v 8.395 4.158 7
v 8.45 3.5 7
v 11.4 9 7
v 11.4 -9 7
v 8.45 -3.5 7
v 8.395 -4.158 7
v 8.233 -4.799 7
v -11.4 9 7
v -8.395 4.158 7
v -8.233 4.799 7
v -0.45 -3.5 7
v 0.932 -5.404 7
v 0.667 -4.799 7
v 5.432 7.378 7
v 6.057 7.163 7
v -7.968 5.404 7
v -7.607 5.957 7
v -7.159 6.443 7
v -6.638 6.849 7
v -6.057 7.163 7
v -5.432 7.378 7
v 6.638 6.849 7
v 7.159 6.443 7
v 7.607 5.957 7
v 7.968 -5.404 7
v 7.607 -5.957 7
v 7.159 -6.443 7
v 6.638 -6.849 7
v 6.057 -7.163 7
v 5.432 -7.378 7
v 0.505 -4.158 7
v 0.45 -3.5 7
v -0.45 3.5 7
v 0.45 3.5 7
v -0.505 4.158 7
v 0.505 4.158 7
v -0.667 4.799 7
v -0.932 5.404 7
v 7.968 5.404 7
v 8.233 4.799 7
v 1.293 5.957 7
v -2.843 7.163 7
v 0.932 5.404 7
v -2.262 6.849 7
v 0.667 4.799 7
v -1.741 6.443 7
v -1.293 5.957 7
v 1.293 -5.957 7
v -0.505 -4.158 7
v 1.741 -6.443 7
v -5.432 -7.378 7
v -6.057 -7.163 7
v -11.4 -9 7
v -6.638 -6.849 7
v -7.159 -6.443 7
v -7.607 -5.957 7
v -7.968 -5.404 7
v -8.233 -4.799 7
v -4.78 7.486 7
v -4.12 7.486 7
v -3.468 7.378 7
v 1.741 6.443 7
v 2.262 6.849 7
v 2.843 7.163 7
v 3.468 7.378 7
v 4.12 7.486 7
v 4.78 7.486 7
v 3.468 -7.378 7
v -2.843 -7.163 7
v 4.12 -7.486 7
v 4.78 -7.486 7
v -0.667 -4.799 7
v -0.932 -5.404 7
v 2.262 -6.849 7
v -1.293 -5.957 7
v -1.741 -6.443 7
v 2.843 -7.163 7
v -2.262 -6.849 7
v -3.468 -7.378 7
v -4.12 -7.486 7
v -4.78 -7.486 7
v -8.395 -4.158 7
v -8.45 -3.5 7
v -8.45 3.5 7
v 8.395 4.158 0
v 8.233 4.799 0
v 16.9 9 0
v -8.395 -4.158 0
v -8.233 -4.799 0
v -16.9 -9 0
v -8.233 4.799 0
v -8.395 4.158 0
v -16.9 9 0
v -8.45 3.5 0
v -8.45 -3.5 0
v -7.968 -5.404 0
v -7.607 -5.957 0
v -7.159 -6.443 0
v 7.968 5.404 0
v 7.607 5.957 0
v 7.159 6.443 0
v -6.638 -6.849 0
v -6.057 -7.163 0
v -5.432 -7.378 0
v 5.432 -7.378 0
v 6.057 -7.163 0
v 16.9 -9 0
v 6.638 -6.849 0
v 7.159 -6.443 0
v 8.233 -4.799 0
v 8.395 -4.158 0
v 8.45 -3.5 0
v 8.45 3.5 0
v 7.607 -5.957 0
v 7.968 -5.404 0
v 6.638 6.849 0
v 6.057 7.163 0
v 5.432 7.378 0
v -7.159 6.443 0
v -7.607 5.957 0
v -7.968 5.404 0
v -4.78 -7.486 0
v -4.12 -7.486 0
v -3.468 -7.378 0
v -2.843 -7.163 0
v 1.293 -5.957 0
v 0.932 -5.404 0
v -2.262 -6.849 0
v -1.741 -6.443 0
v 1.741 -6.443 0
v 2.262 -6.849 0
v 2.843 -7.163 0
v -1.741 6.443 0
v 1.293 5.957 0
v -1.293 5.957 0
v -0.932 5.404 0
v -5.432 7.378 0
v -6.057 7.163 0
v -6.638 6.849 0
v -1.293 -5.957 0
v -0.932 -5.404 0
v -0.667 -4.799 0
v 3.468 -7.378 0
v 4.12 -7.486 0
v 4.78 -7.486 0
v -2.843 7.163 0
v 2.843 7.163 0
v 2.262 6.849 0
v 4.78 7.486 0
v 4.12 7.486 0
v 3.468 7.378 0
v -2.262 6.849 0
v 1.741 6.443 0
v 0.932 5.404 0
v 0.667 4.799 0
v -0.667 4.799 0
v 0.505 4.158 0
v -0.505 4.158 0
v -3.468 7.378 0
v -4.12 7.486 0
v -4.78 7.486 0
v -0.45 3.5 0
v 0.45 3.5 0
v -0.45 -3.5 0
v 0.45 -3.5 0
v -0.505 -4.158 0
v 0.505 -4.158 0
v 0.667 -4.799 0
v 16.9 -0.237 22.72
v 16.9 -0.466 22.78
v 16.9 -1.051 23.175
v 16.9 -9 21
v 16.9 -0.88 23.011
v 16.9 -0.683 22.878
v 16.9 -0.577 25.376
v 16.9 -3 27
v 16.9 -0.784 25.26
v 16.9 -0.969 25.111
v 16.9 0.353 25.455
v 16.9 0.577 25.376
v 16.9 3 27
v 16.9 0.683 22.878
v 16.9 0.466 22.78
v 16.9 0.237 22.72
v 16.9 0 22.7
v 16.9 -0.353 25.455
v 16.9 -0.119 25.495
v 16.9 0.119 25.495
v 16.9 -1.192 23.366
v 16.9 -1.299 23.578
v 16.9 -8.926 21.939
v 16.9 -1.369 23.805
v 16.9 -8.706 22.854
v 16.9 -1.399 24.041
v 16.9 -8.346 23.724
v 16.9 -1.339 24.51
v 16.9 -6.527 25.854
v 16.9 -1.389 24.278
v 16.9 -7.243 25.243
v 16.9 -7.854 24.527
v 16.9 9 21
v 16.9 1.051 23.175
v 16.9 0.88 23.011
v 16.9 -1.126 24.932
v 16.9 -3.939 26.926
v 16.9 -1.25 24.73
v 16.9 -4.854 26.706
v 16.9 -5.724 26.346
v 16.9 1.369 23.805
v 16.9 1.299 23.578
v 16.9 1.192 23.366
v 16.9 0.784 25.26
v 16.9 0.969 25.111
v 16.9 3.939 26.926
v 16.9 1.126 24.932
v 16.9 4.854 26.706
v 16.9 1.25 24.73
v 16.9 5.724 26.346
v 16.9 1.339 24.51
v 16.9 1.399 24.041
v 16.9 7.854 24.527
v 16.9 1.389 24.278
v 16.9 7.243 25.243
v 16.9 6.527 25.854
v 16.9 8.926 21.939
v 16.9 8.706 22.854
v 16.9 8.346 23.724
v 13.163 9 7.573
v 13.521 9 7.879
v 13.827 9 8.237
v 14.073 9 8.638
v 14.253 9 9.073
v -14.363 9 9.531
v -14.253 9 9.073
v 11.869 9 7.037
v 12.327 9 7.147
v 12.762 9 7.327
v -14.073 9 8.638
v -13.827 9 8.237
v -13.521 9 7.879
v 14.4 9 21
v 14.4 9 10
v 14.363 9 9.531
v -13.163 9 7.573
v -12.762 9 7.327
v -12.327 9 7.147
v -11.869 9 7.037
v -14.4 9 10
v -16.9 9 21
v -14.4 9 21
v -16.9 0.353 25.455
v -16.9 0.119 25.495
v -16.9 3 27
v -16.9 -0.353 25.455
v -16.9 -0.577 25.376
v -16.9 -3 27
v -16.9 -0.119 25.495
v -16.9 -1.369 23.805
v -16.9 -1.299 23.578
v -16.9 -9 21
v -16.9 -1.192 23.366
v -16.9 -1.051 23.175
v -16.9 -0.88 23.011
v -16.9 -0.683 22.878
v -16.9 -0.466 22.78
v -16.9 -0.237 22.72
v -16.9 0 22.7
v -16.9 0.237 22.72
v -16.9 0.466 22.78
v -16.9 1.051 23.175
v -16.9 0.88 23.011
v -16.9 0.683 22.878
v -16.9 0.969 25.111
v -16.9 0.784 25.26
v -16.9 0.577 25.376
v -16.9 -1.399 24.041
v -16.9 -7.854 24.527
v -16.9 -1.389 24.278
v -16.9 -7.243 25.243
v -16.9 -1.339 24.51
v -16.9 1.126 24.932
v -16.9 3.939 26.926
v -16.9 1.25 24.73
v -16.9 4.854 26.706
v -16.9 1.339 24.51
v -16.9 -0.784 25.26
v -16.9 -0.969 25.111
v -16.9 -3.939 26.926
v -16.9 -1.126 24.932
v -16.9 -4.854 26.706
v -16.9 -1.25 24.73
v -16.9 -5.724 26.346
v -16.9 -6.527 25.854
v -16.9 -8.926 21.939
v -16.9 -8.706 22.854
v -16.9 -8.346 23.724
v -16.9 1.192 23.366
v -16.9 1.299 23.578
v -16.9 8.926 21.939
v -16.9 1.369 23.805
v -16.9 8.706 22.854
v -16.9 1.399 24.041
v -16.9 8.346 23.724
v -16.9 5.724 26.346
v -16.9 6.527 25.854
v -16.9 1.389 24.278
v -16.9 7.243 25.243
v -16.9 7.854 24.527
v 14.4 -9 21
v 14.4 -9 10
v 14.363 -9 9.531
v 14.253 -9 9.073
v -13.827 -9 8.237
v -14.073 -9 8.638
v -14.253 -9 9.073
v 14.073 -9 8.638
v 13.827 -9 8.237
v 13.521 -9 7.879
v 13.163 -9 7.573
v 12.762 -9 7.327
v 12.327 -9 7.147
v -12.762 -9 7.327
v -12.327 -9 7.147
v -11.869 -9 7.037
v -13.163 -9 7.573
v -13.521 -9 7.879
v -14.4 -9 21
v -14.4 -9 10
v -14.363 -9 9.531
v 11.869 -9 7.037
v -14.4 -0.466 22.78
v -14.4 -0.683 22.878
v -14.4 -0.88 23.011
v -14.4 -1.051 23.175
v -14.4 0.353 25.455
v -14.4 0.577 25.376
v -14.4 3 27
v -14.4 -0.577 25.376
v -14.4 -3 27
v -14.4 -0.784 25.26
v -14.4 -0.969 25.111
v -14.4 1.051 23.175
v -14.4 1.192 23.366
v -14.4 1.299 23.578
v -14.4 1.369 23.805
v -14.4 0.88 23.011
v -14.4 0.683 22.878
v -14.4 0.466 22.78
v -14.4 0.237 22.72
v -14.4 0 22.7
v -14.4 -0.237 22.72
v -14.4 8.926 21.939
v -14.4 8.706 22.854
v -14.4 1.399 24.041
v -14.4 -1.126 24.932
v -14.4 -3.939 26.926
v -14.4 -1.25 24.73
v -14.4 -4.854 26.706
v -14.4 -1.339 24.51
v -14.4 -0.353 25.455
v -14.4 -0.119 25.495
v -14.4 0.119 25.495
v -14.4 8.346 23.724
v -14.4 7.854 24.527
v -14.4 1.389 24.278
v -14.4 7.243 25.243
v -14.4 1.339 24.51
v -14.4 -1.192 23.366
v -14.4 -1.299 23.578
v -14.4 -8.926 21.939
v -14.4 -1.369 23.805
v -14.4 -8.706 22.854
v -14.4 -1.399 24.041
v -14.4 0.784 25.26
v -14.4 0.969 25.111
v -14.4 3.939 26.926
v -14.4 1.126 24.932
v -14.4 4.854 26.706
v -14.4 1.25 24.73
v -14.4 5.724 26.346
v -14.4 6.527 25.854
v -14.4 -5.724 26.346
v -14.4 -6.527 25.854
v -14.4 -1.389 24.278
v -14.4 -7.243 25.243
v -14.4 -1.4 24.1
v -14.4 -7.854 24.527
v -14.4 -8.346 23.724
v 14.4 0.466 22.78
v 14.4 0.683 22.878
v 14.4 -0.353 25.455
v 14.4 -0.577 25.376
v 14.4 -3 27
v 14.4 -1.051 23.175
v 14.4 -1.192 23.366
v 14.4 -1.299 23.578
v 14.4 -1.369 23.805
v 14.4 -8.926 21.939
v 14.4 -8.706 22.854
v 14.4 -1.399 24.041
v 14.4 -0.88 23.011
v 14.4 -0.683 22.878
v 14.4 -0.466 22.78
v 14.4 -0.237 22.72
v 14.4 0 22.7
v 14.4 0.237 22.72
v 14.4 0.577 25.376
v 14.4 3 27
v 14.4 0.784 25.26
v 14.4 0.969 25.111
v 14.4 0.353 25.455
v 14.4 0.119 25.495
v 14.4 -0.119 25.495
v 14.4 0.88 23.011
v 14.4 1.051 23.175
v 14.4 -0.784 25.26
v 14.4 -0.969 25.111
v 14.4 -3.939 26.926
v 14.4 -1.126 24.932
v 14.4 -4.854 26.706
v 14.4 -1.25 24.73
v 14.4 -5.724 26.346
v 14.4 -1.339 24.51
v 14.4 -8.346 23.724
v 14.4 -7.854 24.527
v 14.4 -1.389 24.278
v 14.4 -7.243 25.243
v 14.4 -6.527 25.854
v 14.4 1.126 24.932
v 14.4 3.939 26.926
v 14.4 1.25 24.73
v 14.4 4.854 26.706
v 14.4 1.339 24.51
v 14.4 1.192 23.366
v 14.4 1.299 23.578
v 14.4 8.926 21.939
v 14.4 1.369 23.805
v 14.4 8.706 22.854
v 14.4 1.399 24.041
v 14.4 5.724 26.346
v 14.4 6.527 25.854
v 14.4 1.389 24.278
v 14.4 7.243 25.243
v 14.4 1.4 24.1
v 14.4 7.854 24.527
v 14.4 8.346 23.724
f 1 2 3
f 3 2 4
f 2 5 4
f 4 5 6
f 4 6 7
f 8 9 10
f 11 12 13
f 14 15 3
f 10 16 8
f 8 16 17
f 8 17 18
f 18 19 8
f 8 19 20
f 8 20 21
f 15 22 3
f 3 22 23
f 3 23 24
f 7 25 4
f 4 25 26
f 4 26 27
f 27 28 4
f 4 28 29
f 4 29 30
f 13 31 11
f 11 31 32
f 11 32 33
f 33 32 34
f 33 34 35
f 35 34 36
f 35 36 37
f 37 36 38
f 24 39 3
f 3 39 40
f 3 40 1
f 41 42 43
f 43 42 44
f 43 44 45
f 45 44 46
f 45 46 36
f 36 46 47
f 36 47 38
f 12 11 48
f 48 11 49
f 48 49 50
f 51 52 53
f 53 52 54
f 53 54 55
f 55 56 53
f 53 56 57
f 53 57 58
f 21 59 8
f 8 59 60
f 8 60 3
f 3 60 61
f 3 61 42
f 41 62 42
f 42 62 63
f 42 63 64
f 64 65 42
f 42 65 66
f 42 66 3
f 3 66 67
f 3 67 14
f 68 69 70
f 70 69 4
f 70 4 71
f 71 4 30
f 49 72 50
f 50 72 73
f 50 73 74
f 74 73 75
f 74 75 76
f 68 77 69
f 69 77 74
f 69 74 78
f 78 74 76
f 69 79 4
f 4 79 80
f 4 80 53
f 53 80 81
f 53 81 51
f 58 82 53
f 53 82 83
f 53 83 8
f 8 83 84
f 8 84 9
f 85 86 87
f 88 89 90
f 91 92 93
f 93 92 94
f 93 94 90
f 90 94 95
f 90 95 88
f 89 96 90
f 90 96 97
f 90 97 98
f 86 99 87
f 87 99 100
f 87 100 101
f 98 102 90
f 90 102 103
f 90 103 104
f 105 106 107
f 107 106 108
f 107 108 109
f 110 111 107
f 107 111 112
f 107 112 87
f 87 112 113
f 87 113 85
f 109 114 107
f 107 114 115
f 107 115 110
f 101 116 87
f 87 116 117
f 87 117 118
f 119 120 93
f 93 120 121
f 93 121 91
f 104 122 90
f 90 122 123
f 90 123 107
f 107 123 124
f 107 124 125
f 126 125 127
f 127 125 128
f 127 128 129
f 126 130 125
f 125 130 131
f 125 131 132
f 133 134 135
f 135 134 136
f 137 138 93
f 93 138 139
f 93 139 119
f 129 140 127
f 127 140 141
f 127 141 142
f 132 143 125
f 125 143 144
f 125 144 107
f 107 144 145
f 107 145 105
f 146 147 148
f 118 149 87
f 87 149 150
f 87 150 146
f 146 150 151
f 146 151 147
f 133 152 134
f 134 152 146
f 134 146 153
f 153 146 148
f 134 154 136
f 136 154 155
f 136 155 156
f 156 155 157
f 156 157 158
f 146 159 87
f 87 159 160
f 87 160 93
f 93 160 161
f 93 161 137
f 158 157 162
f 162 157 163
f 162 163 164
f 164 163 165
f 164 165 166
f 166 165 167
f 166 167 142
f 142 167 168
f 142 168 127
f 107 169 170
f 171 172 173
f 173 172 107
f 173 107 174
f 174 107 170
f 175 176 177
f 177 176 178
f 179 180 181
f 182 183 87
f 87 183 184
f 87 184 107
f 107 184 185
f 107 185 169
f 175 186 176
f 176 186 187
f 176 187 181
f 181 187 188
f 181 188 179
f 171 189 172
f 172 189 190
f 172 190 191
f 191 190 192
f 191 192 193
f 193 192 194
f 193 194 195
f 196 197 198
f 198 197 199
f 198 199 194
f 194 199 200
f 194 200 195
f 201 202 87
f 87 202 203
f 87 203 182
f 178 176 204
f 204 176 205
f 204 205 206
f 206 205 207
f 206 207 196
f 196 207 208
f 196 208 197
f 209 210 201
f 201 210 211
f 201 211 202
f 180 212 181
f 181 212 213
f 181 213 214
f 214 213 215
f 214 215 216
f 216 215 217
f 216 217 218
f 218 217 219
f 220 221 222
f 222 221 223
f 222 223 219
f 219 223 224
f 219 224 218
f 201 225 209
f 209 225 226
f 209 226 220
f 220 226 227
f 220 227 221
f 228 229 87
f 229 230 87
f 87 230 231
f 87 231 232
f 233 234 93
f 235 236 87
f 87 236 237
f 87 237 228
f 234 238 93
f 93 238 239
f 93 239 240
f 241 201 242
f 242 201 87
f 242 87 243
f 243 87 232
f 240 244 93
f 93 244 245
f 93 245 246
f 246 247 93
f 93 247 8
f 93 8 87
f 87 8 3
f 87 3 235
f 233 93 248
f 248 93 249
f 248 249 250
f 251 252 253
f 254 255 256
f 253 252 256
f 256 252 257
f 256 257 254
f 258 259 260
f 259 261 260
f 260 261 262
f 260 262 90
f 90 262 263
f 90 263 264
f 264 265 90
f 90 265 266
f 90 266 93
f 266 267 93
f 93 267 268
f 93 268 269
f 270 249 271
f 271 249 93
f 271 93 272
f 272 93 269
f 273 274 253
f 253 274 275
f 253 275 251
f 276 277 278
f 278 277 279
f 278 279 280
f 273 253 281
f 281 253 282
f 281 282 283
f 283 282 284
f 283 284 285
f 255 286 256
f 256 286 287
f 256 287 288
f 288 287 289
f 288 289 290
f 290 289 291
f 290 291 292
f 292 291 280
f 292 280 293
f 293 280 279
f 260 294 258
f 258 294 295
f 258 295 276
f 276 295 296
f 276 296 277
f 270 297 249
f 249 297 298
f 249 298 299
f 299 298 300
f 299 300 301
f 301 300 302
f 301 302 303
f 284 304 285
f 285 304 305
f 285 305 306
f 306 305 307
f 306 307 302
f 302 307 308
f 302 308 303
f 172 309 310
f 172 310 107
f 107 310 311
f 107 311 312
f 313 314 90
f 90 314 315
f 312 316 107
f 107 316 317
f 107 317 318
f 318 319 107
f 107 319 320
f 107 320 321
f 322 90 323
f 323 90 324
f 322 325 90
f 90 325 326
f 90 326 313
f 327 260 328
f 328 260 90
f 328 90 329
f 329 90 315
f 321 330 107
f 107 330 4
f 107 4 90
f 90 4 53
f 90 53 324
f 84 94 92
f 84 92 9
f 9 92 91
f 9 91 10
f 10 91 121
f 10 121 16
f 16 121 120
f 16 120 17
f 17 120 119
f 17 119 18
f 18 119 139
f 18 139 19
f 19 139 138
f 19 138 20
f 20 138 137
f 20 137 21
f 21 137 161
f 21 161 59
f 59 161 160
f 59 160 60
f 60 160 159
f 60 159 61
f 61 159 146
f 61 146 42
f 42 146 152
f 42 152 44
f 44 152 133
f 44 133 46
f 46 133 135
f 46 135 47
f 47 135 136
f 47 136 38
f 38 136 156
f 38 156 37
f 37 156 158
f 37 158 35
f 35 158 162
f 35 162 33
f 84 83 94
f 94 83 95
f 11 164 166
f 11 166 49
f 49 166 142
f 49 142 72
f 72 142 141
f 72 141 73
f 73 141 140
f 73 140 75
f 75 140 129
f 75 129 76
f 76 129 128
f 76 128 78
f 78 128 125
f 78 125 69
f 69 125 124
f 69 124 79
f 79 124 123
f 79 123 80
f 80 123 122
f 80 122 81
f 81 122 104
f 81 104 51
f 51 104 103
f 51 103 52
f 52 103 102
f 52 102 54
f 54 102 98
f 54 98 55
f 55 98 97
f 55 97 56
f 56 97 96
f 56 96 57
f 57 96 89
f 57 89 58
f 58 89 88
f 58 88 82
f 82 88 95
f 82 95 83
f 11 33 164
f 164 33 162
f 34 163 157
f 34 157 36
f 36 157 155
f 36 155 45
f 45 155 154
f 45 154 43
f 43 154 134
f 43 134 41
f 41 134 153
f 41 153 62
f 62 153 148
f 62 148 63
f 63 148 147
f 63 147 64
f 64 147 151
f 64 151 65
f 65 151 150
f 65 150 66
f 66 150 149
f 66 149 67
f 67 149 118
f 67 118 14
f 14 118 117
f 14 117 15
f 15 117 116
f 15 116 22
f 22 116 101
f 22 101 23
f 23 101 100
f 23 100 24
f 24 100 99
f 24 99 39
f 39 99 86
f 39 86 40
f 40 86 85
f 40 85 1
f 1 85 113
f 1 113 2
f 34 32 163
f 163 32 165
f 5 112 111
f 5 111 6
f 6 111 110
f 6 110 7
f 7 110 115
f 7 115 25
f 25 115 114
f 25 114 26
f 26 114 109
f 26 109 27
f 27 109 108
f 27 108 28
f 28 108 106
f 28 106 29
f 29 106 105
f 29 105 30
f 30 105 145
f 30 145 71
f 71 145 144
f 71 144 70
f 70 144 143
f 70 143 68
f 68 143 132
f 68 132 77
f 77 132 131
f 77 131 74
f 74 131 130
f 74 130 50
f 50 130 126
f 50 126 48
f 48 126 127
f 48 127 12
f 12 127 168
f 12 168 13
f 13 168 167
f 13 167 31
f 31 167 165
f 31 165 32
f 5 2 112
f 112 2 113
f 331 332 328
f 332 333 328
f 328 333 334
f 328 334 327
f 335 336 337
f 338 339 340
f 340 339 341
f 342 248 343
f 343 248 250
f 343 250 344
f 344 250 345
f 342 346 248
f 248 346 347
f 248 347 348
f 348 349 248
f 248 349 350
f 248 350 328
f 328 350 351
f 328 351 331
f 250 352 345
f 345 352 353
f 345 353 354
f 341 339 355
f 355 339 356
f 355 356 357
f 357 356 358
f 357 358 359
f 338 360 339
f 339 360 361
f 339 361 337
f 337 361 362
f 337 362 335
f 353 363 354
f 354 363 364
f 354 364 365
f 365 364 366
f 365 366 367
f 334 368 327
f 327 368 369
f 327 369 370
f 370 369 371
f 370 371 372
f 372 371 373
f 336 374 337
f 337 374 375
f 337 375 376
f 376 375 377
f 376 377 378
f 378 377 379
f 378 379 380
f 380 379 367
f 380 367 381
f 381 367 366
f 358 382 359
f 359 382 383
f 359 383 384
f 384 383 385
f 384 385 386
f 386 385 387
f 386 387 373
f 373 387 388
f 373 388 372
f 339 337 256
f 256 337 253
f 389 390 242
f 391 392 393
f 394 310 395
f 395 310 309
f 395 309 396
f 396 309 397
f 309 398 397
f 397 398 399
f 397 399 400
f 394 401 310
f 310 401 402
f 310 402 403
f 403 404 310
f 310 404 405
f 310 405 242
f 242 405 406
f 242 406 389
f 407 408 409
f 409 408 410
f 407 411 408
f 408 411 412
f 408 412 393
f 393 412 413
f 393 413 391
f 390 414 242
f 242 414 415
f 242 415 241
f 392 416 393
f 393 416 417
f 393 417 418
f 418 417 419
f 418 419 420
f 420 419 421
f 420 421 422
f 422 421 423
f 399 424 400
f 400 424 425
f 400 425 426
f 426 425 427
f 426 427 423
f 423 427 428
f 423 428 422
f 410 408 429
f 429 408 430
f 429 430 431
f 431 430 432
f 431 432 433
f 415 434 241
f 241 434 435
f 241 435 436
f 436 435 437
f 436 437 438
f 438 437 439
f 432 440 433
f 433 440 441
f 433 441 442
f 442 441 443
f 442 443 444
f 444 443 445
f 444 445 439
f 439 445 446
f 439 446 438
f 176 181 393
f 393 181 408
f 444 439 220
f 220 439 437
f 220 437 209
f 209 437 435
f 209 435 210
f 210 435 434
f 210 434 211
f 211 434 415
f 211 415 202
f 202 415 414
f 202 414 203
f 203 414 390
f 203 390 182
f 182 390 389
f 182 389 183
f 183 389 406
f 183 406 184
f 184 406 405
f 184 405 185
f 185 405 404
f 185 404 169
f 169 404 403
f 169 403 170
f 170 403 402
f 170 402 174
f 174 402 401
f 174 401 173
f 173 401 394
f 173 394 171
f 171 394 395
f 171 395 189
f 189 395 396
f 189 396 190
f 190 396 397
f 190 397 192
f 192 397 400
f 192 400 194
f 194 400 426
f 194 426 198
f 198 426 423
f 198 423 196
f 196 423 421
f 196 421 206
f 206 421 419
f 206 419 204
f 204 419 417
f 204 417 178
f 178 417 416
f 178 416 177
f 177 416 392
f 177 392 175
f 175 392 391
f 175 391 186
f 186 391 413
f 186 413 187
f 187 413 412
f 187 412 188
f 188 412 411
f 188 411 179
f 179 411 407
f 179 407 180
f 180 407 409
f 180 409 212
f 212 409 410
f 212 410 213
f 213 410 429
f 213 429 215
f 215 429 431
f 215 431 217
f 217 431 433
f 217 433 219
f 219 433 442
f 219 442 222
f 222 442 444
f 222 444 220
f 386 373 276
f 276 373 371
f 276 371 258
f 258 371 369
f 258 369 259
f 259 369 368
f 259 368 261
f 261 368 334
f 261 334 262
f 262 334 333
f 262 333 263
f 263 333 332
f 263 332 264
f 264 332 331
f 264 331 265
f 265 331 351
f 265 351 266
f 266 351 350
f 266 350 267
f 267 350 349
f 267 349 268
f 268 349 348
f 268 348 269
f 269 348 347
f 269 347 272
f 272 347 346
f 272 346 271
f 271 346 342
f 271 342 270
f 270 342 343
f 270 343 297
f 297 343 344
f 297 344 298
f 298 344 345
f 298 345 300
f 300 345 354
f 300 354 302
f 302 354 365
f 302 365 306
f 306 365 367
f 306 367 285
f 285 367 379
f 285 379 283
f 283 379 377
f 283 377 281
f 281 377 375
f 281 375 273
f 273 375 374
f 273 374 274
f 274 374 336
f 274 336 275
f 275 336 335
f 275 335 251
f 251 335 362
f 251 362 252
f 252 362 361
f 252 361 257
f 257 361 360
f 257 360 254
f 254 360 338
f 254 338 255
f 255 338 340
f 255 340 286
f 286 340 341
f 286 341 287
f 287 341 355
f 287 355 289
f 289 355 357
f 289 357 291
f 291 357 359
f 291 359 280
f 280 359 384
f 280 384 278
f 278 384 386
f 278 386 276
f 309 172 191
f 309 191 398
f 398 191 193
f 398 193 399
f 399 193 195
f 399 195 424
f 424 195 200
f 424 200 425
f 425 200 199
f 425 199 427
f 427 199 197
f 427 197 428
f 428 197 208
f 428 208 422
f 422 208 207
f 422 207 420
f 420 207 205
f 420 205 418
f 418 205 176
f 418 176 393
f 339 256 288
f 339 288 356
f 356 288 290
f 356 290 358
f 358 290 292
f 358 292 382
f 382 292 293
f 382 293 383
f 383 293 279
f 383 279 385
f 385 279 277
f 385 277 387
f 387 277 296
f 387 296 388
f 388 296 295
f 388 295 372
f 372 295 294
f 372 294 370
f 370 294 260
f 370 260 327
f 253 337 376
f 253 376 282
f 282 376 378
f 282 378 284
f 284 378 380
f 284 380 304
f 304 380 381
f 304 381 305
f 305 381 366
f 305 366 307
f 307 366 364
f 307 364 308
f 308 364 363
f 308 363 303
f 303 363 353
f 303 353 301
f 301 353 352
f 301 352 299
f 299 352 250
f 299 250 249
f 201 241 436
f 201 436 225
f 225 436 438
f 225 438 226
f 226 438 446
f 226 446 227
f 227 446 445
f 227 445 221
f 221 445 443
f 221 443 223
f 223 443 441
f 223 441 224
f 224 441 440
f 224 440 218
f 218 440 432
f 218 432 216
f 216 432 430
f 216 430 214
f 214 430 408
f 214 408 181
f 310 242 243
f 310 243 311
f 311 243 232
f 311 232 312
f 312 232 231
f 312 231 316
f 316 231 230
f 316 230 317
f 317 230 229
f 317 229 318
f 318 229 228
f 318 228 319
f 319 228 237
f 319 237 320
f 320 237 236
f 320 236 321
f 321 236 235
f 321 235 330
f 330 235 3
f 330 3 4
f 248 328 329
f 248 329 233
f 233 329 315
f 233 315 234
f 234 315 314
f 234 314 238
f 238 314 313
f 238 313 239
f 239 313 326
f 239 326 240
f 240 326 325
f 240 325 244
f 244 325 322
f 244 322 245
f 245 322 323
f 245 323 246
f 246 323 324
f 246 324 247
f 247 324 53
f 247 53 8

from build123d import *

# Parameters (mm, degrees)
SKETCH1_W           = 33.8
SKETCH1_H           = 18
BOSS_EXTRUDE1_DEPTH = 7
SKETCH2_W           = 2.5
SKETCH2_H           = 18
BOSS_EXTRUDE2_DEPTH = 20
SKETCH3_R           = 1.4
CUT_EXTRUDE1_DEPTH  = 34.8
FILLET1_R           = 6
FILLET2_R           = 3


with BuildPart() as part:
    # Sketch1 → Boss-Extrude1 (new body)
    with BuildSketch(Plane.XY):
        Rectangle(SKETCH1_W, SKETCH1_H)
        with BuildLine():
            Line((-0.45, 3.5), (-0.45, -3.5))
            ThreePointArc((-0.45, -3.5), (-4.45, -7.5), (-8.45, -3.5))
            Line((-8.45, -3.5), (-8.45, 3.5))
            ThreePointArc((-8.45, 3.5), (-4.45, 7.5), (-0.45, 3.5))
        make_face(mode=Mode.SUBTRACT)
        with BuildLine():
            Line((8.45, 3.5), (8.45, -3.5))
            ThreePointArc((8.45, -3.5), (4.45, -7.5), (0.45, -3.5))
            Line((0.45, -3.5), (0.45, 3.5))
            ThreePointArc((0.45, 3.5), (4.45, 7.5), (8.45, 3.5))
        make_face(mode=Mode.SUBTRACT)
    extrude(amount=BOSS_EXTRUDE1_DEPTH)

    # Sketch2 → Boss-Extrude2 (add)
    with BuildSketch(Plane.XY.offset(7)):
        with Locations((-15.65, 0)):
            Rectangle(SKETCH2_W, SKETCH2_H)
        with Locations((15.65, 0)):
            Rectangle(SKETCH2_W, SKETCH2_H)
    extrude(amount=BOSS_EXTRUDE2_DEPTH)

    # Sketch3 → Cut-Extrude1 (cut, through all)
    with BuildSketch(Plane(origin=(16.9, 0, 0), x_dir=(0, 0, -1), z_dir=(1, 0, 0))):
        with Locations((-24.1, 0)):
            Circle(SKETCH3_R)
    extrude(amount=-CUT_EXTRUDE1_DEPTH, mode=Mode.SUBTRACT)

    # Fillet1
    fillet1_edges = [part.edges().sort_by_distance(p)[0] for p in [
        (15.65, -9, 27),
        (-15.65, -9, 27),
        (-15.65, 9, 27),
        (15.65, 9, 27),
    ]]
    fillet(fillet1_edges, radius=FILLET1_R)

    # Fillet2
    fillet2_edges = [part.edges().sort_by_distance(p)[0] for p in [
        (14.4, 0, 7),
        (-14.4, 0, 7),
    ]]
    fillet(fillet2_edges, radius=FILLET2_R)


solid = part.part
